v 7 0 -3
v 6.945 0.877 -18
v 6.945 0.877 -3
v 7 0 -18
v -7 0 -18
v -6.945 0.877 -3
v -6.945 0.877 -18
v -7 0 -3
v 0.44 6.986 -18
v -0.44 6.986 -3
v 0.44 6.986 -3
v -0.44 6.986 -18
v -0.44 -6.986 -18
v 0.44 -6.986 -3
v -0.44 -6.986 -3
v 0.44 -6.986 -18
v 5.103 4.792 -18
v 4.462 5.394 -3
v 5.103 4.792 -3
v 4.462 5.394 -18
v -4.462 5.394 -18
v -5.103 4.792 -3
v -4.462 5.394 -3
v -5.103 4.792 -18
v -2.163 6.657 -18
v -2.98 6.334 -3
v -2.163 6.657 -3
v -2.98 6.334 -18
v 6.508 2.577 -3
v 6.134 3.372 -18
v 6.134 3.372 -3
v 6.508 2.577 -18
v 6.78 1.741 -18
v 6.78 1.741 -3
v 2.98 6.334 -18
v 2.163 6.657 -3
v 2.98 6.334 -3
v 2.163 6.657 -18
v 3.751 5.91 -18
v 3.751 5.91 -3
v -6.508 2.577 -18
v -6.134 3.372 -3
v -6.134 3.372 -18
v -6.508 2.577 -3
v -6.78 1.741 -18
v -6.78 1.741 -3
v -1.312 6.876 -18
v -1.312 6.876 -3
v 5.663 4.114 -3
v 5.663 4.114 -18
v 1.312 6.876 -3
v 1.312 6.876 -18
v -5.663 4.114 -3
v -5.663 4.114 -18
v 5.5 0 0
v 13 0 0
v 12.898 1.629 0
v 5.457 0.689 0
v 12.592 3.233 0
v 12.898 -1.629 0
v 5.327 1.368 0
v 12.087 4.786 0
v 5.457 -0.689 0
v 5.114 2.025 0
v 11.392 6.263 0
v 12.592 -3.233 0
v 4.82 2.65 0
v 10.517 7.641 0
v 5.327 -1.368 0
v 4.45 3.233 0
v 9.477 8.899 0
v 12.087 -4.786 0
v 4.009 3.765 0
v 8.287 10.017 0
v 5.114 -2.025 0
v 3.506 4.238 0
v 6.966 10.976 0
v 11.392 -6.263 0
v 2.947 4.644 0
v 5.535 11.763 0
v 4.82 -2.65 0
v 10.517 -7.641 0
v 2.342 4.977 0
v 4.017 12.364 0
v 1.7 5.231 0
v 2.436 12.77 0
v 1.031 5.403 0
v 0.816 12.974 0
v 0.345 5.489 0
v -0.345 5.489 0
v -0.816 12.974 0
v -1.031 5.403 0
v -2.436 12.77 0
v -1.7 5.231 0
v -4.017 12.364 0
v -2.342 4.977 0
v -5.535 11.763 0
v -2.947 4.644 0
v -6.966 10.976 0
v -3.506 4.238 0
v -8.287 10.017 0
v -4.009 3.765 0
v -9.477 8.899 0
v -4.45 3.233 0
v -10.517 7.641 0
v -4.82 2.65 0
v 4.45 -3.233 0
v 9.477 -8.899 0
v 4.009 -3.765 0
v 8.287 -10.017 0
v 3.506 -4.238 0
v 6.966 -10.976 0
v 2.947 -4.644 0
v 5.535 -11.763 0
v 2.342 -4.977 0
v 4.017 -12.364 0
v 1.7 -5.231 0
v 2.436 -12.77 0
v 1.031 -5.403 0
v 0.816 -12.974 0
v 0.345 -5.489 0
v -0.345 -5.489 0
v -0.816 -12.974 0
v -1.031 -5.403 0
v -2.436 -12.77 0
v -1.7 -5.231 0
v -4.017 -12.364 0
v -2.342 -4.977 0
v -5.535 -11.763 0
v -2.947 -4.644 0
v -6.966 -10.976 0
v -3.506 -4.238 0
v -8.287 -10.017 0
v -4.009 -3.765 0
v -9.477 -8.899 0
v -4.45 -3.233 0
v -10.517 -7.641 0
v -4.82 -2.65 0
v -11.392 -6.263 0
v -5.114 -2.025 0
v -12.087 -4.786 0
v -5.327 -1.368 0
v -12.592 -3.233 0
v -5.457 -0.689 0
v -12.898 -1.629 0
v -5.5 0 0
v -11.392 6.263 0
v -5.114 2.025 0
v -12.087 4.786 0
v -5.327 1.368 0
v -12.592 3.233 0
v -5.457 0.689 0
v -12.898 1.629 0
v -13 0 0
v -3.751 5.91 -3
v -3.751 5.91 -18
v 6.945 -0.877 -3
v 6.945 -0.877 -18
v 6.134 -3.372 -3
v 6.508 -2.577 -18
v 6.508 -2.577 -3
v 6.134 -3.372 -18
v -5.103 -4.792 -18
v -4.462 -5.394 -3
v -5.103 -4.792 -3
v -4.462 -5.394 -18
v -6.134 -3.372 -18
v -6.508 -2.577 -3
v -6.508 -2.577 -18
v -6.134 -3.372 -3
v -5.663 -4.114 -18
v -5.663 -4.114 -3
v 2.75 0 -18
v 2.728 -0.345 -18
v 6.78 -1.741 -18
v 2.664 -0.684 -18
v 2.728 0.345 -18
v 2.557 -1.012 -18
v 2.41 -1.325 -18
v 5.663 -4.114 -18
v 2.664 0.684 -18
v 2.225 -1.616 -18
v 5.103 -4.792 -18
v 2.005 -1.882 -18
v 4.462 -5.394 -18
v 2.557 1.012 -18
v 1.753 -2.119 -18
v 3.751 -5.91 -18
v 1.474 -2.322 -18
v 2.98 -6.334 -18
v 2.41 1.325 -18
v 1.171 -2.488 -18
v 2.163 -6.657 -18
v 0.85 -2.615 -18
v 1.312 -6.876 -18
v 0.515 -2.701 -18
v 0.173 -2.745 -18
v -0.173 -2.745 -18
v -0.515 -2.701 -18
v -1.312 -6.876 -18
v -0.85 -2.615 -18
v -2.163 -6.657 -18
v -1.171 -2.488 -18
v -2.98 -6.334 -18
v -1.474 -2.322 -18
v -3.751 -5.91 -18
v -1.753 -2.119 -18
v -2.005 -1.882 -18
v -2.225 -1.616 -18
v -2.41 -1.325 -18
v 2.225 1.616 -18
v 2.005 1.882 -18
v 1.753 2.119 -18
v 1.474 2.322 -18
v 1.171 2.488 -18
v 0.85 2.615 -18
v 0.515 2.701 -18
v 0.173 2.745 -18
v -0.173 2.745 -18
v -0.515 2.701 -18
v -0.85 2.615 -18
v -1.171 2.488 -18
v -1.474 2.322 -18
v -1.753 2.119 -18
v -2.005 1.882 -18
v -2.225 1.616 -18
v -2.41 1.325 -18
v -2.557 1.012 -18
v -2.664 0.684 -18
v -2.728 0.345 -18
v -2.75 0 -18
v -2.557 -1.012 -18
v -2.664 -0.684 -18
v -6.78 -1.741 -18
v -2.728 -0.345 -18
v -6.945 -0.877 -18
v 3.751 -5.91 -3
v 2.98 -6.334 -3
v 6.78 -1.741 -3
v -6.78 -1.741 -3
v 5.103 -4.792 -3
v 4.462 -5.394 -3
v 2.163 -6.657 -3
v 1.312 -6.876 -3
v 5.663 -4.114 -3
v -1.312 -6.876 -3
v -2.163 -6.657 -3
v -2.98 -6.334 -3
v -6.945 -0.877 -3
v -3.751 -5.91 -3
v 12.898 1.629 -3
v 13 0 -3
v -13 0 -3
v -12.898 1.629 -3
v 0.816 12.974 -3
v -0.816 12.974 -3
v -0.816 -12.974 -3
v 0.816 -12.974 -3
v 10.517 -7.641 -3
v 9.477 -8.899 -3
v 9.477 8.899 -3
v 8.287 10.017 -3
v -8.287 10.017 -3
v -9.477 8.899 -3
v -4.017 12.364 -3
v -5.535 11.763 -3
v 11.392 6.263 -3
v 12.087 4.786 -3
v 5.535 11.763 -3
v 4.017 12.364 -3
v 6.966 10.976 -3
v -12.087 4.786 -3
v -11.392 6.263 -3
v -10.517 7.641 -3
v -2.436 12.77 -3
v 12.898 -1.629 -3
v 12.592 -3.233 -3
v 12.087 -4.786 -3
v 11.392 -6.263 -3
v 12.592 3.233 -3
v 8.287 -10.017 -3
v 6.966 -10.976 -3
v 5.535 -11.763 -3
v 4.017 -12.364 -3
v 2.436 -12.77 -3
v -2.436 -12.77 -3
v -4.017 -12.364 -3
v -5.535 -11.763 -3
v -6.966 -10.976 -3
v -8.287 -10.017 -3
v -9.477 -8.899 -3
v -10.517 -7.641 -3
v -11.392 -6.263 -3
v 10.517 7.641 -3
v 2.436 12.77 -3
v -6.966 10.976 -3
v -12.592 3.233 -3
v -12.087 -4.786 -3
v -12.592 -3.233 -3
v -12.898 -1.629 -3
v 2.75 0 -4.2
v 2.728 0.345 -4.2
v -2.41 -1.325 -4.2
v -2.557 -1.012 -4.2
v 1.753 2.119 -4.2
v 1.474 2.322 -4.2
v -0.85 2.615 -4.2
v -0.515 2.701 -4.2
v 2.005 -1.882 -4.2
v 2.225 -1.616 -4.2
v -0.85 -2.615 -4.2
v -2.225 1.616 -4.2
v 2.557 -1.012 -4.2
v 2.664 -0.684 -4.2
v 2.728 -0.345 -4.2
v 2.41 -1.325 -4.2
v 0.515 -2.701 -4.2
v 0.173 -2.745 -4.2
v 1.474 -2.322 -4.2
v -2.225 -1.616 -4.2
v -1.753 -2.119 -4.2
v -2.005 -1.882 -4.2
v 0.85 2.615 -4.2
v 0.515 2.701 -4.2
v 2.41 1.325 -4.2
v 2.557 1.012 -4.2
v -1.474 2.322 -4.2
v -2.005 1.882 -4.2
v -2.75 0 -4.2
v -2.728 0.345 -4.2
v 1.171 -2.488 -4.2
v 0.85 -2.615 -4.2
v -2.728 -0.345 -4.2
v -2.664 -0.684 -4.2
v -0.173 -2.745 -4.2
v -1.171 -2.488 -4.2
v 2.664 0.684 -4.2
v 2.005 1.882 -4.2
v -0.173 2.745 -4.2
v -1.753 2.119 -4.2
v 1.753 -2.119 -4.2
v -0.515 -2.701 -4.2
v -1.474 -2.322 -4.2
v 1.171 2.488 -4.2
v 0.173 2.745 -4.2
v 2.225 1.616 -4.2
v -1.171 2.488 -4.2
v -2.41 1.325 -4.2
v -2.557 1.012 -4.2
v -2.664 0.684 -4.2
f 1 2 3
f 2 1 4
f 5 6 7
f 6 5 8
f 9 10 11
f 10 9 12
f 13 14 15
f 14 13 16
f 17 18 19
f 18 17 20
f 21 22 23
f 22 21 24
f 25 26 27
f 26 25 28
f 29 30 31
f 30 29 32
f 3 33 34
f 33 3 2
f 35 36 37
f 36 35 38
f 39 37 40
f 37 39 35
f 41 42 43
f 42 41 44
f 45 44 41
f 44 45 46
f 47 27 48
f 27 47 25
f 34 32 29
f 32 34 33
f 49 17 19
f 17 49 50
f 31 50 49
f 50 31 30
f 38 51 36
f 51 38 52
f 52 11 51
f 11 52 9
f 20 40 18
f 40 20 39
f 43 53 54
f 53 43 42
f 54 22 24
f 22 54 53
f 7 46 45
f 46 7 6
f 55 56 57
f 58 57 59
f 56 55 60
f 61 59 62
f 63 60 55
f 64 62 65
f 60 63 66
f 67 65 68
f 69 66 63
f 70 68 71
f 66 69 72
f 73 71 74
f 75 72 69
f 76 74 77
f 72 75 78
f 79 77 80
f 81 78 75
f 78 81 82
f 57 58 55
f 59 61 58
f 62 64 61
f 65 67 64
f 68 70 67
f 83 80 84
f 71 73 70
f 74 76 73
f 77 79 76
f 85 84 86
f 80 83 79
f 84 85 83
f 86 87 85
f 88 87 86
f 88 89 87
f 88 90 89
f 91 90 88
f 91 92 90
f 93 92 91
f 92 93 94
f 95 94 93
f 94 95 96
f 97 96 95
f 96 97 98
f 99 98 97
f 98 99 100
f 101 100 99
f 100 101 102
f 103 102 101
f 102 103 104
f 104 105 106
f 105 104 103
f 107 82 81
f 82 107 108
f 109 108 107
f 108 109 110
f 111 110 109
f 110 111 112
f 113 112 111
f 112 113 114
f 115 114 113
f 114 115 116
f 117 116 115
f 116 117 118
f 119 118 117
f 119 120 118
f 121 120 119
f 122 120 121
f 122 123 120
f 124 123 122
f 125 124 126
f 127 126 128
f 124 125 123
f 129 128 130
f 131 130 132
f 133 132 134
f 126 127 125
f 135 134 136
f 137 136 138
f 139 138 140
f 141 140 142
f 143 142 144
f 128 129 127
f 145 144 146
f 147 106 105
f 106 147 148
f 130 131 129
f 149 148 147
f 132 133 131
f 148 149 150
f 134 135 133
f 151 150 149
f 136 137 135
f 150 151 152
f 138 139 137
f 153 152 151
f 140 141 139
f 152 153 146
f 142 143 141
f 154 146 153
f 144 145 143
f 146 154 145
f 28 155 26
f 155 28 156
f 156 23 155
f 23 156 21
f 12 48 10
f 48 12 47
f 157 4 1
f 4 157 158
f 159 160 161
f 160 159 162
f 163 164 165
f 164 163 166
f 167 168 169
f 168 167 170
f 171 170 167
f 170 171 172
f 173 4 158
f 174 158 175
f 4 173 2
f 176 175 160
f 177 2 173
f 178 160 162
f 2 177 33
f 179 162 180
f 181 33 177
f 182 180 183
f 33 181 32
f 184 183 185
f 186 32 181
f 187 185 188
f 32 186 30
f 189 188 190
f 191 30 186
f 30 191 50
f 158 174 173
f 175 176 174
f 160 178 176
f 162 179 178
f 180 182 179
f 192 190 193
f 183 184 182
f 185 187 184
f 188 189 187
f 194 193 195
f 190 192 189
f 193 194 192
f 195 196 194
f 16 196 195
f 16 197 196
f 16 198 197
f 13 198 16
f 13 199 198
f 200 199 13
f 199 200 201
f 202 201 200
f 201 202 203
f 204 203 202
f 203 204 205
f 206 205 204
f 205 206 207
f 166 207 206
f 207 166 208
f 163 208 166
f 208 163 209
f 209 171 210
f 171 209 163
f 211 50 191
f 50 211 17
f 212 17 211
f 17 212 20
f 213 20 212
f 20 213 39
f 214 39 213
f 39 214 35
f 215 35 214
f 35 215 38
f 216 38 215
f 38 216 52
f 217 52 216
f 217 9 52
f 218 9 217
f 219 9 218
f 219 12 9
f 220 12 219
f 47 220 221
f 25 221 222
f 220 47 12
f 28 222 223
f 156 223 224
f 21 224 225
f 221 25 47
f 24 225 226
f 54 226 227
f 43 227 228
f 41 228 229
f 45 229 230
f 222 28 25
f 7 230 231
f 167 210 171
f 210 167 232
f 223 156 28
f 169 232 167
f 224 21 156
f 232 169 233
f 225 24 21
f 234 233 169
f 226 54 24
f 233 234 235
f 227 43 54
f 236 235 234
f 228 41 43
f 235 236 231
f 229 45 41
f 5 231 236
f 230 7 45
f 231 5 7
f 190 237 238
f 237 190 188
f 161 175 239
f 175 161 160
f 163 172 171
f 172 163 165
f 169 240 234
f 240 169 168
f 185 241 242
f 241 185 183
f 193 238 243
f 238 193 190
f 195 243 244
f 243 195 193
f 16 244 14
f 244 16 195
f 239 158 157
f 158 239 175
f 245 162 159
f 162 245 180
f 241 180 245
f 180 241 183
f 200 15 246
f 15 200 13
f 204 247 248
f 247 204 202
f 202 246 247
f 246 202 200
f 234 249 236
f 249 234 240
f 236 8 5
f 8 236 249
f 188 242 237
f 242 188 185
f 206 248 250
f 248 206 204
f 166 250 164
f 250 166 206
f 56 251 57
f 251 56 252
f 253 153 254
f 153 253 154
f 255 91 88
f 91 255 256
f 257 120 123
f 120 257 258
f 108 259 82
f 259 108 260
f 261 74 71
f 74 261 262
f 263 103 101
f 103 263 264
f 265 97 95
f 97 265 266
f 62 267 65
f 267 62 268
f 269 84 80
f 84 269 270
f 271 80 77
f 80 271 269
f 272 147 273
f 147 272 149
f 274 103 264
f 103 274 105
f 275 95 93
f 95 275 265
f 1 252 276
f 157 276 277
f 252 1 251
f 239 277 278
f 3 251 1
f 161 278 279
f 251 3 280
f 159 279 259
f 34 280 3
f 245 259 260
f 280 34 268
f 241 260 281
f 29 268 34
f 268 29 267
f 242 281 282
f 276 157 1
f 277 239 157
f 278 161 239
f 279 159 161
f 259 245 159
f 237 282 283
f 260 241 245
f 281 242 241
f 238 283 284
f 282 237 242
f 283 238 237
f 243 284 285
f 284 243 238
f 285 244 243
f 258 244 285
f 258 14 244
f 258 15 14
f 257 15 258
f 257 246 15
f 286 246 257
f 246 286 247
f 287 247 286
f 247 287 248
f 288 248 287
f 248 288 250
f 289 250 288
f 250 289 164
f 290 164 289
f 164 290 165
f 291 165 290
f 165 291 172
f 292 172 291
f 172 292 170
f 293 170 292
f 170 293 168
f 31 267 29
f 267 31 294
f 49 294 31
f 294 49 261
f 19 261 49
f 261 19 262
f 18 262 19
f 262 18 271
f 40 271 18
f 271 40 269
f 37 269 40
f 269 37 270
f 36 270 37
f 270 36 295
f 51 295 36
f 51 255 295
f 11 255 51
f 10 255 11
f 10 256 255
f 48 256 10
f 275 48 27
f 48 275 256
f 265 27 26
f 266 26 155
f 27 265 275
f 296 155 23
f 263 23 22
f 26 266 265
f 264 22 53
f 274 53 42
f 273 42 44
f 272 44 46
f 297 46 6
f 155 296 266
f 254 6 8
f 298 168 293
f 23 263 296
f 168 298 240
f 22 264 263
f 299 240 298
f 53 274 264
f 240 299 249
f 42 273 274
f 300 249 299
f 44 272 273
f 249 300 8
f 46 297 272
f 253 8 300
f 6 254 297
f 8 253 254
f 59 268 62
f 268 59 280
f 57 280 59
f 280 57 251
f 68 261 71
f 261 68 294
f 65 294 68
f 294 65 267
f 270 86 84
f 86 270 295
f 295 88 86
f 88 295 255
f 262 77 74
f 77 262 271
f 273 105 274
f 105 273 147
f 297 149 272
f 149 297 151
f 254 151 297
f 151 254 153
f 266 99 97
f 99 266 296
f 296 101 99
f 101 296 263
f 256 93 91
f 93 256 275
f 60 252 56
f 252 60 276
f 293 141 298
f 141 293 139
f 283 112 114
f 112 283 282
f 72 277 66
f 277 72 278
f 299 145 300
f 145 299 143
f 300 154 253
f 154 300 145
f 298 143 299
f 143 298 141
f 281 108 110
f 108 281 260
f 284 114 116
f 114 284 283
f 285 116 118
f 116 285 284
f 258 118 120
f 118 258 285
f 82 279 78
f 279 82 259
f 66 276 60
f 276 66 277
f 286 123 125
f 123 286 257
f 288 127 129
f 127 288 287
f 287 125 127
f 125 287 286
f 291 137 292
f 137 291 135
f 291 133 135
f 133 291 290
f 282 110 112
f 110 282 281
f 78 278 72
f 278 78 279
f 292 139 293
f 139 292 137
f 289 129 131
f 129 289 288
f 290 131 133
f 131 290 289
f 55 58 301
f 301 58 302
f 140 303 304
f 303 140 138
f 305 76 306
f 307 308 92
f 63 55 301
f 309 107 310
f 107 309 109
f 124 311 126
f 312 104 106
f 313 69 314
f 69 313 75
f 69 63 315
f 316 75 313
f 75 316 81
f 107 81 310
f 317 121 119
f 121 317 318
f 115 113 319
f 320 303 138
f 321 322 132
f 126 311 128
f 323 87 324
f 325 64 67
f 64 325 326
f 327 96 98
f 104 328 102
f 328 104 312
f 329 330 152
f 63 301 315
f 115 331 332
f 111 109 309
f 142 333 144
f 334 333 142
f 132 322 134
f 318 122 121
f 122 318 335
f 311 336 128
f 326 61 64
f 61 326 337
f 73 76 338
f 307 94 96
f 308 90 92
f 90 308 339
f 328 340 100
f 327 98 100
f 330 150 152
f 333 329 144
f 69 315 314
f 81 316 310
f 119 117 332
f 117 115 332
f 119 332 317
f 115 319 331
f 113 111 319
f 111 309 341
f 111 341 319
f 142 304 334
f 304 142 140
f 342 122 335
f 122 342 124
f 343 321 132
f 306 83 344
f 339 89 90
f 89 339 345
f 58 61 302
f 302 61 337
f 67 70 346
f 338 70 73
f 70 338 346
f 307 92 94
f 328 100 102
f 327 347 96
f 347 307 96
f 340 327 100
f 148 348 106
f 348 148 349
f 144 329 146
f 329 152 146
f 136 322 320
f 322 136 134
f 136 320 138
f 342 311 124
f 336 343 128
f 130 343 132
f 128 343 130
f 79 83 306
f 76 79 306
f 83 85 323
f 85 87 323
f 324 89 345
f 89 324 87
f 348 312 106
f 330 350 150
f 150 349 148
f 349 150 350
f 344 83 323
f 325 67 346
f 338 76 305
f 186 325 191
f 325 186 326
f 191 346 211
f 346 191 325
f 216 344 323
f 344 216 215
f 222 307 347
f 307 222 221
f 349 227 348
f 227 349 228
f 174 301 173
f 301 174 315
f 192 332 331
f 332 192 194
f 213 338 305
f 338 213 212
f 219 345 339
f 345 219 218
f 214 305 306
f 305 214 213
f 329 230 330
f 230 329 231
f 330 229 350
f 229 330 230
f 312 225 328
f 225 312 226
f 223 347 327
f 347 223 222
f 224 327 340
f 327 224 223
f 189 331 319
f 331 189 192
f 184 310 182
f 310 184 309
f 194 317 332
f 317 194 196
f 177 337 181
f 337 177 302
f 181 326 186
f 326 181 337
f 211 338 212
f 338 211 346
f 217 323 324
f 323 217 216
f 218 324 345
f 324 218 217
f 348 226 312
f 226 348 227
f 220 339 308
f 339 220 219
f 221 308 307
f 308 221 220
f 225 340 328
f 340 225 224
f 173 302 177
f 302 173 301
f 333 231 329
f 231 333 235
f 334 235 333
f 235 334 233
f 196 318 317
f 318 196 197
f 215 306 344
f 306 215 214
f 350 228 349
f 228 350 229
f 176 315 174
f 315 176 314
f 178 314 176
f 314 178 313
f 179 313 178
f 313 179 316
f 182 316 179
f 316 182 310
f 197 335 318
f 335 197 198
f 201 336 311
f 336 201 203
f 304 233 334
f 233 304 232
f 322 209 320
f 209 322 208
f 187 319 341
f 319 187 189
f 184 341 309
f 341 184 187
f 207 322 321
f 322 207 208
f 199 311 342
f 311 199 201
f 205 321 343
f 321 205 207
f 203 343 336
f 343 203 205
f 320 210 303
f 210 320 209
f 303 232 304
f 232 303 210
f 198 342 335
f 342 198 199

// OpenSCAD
$fn = 50;


difference() {
	union() {
		translate(v = [0, 0, -18.0000000000]) {
			cylinder(h = 18, r = 7.0000000000);
		}
		translate(v = [0, 0, -3.0000000000]) {
			cylinder(h = 3, r = 13.0000000000);
		}
	}
	union() {
		translate(v = [0, 0, 0]) {
			rotate(a = [0, 0, 0]) {
				difference() {
					union() {
						#translate(v = [0, 0, -18.0000000000]) {
							cylinder(h = 18, r = 2.2500000000);
						}
						#translate(v = [0, 0, -4.2000000000]) {
							cylinder(h = 4.2000000000, r = 7.0000000000, r1 = 2.7500000000, r2 = 5.5000000000);
						}
						#translate(v = [0, 0, -18.0000000000]) {
							cylinder(h = 18, r = 2.7500000000);
						}
						#translate(v = [0, 0, -18.0000000000]) {
							cylinder(h = 18, r = 2.2500000000);
						}
					}
					union();
				}
			}
		}
	}
}
